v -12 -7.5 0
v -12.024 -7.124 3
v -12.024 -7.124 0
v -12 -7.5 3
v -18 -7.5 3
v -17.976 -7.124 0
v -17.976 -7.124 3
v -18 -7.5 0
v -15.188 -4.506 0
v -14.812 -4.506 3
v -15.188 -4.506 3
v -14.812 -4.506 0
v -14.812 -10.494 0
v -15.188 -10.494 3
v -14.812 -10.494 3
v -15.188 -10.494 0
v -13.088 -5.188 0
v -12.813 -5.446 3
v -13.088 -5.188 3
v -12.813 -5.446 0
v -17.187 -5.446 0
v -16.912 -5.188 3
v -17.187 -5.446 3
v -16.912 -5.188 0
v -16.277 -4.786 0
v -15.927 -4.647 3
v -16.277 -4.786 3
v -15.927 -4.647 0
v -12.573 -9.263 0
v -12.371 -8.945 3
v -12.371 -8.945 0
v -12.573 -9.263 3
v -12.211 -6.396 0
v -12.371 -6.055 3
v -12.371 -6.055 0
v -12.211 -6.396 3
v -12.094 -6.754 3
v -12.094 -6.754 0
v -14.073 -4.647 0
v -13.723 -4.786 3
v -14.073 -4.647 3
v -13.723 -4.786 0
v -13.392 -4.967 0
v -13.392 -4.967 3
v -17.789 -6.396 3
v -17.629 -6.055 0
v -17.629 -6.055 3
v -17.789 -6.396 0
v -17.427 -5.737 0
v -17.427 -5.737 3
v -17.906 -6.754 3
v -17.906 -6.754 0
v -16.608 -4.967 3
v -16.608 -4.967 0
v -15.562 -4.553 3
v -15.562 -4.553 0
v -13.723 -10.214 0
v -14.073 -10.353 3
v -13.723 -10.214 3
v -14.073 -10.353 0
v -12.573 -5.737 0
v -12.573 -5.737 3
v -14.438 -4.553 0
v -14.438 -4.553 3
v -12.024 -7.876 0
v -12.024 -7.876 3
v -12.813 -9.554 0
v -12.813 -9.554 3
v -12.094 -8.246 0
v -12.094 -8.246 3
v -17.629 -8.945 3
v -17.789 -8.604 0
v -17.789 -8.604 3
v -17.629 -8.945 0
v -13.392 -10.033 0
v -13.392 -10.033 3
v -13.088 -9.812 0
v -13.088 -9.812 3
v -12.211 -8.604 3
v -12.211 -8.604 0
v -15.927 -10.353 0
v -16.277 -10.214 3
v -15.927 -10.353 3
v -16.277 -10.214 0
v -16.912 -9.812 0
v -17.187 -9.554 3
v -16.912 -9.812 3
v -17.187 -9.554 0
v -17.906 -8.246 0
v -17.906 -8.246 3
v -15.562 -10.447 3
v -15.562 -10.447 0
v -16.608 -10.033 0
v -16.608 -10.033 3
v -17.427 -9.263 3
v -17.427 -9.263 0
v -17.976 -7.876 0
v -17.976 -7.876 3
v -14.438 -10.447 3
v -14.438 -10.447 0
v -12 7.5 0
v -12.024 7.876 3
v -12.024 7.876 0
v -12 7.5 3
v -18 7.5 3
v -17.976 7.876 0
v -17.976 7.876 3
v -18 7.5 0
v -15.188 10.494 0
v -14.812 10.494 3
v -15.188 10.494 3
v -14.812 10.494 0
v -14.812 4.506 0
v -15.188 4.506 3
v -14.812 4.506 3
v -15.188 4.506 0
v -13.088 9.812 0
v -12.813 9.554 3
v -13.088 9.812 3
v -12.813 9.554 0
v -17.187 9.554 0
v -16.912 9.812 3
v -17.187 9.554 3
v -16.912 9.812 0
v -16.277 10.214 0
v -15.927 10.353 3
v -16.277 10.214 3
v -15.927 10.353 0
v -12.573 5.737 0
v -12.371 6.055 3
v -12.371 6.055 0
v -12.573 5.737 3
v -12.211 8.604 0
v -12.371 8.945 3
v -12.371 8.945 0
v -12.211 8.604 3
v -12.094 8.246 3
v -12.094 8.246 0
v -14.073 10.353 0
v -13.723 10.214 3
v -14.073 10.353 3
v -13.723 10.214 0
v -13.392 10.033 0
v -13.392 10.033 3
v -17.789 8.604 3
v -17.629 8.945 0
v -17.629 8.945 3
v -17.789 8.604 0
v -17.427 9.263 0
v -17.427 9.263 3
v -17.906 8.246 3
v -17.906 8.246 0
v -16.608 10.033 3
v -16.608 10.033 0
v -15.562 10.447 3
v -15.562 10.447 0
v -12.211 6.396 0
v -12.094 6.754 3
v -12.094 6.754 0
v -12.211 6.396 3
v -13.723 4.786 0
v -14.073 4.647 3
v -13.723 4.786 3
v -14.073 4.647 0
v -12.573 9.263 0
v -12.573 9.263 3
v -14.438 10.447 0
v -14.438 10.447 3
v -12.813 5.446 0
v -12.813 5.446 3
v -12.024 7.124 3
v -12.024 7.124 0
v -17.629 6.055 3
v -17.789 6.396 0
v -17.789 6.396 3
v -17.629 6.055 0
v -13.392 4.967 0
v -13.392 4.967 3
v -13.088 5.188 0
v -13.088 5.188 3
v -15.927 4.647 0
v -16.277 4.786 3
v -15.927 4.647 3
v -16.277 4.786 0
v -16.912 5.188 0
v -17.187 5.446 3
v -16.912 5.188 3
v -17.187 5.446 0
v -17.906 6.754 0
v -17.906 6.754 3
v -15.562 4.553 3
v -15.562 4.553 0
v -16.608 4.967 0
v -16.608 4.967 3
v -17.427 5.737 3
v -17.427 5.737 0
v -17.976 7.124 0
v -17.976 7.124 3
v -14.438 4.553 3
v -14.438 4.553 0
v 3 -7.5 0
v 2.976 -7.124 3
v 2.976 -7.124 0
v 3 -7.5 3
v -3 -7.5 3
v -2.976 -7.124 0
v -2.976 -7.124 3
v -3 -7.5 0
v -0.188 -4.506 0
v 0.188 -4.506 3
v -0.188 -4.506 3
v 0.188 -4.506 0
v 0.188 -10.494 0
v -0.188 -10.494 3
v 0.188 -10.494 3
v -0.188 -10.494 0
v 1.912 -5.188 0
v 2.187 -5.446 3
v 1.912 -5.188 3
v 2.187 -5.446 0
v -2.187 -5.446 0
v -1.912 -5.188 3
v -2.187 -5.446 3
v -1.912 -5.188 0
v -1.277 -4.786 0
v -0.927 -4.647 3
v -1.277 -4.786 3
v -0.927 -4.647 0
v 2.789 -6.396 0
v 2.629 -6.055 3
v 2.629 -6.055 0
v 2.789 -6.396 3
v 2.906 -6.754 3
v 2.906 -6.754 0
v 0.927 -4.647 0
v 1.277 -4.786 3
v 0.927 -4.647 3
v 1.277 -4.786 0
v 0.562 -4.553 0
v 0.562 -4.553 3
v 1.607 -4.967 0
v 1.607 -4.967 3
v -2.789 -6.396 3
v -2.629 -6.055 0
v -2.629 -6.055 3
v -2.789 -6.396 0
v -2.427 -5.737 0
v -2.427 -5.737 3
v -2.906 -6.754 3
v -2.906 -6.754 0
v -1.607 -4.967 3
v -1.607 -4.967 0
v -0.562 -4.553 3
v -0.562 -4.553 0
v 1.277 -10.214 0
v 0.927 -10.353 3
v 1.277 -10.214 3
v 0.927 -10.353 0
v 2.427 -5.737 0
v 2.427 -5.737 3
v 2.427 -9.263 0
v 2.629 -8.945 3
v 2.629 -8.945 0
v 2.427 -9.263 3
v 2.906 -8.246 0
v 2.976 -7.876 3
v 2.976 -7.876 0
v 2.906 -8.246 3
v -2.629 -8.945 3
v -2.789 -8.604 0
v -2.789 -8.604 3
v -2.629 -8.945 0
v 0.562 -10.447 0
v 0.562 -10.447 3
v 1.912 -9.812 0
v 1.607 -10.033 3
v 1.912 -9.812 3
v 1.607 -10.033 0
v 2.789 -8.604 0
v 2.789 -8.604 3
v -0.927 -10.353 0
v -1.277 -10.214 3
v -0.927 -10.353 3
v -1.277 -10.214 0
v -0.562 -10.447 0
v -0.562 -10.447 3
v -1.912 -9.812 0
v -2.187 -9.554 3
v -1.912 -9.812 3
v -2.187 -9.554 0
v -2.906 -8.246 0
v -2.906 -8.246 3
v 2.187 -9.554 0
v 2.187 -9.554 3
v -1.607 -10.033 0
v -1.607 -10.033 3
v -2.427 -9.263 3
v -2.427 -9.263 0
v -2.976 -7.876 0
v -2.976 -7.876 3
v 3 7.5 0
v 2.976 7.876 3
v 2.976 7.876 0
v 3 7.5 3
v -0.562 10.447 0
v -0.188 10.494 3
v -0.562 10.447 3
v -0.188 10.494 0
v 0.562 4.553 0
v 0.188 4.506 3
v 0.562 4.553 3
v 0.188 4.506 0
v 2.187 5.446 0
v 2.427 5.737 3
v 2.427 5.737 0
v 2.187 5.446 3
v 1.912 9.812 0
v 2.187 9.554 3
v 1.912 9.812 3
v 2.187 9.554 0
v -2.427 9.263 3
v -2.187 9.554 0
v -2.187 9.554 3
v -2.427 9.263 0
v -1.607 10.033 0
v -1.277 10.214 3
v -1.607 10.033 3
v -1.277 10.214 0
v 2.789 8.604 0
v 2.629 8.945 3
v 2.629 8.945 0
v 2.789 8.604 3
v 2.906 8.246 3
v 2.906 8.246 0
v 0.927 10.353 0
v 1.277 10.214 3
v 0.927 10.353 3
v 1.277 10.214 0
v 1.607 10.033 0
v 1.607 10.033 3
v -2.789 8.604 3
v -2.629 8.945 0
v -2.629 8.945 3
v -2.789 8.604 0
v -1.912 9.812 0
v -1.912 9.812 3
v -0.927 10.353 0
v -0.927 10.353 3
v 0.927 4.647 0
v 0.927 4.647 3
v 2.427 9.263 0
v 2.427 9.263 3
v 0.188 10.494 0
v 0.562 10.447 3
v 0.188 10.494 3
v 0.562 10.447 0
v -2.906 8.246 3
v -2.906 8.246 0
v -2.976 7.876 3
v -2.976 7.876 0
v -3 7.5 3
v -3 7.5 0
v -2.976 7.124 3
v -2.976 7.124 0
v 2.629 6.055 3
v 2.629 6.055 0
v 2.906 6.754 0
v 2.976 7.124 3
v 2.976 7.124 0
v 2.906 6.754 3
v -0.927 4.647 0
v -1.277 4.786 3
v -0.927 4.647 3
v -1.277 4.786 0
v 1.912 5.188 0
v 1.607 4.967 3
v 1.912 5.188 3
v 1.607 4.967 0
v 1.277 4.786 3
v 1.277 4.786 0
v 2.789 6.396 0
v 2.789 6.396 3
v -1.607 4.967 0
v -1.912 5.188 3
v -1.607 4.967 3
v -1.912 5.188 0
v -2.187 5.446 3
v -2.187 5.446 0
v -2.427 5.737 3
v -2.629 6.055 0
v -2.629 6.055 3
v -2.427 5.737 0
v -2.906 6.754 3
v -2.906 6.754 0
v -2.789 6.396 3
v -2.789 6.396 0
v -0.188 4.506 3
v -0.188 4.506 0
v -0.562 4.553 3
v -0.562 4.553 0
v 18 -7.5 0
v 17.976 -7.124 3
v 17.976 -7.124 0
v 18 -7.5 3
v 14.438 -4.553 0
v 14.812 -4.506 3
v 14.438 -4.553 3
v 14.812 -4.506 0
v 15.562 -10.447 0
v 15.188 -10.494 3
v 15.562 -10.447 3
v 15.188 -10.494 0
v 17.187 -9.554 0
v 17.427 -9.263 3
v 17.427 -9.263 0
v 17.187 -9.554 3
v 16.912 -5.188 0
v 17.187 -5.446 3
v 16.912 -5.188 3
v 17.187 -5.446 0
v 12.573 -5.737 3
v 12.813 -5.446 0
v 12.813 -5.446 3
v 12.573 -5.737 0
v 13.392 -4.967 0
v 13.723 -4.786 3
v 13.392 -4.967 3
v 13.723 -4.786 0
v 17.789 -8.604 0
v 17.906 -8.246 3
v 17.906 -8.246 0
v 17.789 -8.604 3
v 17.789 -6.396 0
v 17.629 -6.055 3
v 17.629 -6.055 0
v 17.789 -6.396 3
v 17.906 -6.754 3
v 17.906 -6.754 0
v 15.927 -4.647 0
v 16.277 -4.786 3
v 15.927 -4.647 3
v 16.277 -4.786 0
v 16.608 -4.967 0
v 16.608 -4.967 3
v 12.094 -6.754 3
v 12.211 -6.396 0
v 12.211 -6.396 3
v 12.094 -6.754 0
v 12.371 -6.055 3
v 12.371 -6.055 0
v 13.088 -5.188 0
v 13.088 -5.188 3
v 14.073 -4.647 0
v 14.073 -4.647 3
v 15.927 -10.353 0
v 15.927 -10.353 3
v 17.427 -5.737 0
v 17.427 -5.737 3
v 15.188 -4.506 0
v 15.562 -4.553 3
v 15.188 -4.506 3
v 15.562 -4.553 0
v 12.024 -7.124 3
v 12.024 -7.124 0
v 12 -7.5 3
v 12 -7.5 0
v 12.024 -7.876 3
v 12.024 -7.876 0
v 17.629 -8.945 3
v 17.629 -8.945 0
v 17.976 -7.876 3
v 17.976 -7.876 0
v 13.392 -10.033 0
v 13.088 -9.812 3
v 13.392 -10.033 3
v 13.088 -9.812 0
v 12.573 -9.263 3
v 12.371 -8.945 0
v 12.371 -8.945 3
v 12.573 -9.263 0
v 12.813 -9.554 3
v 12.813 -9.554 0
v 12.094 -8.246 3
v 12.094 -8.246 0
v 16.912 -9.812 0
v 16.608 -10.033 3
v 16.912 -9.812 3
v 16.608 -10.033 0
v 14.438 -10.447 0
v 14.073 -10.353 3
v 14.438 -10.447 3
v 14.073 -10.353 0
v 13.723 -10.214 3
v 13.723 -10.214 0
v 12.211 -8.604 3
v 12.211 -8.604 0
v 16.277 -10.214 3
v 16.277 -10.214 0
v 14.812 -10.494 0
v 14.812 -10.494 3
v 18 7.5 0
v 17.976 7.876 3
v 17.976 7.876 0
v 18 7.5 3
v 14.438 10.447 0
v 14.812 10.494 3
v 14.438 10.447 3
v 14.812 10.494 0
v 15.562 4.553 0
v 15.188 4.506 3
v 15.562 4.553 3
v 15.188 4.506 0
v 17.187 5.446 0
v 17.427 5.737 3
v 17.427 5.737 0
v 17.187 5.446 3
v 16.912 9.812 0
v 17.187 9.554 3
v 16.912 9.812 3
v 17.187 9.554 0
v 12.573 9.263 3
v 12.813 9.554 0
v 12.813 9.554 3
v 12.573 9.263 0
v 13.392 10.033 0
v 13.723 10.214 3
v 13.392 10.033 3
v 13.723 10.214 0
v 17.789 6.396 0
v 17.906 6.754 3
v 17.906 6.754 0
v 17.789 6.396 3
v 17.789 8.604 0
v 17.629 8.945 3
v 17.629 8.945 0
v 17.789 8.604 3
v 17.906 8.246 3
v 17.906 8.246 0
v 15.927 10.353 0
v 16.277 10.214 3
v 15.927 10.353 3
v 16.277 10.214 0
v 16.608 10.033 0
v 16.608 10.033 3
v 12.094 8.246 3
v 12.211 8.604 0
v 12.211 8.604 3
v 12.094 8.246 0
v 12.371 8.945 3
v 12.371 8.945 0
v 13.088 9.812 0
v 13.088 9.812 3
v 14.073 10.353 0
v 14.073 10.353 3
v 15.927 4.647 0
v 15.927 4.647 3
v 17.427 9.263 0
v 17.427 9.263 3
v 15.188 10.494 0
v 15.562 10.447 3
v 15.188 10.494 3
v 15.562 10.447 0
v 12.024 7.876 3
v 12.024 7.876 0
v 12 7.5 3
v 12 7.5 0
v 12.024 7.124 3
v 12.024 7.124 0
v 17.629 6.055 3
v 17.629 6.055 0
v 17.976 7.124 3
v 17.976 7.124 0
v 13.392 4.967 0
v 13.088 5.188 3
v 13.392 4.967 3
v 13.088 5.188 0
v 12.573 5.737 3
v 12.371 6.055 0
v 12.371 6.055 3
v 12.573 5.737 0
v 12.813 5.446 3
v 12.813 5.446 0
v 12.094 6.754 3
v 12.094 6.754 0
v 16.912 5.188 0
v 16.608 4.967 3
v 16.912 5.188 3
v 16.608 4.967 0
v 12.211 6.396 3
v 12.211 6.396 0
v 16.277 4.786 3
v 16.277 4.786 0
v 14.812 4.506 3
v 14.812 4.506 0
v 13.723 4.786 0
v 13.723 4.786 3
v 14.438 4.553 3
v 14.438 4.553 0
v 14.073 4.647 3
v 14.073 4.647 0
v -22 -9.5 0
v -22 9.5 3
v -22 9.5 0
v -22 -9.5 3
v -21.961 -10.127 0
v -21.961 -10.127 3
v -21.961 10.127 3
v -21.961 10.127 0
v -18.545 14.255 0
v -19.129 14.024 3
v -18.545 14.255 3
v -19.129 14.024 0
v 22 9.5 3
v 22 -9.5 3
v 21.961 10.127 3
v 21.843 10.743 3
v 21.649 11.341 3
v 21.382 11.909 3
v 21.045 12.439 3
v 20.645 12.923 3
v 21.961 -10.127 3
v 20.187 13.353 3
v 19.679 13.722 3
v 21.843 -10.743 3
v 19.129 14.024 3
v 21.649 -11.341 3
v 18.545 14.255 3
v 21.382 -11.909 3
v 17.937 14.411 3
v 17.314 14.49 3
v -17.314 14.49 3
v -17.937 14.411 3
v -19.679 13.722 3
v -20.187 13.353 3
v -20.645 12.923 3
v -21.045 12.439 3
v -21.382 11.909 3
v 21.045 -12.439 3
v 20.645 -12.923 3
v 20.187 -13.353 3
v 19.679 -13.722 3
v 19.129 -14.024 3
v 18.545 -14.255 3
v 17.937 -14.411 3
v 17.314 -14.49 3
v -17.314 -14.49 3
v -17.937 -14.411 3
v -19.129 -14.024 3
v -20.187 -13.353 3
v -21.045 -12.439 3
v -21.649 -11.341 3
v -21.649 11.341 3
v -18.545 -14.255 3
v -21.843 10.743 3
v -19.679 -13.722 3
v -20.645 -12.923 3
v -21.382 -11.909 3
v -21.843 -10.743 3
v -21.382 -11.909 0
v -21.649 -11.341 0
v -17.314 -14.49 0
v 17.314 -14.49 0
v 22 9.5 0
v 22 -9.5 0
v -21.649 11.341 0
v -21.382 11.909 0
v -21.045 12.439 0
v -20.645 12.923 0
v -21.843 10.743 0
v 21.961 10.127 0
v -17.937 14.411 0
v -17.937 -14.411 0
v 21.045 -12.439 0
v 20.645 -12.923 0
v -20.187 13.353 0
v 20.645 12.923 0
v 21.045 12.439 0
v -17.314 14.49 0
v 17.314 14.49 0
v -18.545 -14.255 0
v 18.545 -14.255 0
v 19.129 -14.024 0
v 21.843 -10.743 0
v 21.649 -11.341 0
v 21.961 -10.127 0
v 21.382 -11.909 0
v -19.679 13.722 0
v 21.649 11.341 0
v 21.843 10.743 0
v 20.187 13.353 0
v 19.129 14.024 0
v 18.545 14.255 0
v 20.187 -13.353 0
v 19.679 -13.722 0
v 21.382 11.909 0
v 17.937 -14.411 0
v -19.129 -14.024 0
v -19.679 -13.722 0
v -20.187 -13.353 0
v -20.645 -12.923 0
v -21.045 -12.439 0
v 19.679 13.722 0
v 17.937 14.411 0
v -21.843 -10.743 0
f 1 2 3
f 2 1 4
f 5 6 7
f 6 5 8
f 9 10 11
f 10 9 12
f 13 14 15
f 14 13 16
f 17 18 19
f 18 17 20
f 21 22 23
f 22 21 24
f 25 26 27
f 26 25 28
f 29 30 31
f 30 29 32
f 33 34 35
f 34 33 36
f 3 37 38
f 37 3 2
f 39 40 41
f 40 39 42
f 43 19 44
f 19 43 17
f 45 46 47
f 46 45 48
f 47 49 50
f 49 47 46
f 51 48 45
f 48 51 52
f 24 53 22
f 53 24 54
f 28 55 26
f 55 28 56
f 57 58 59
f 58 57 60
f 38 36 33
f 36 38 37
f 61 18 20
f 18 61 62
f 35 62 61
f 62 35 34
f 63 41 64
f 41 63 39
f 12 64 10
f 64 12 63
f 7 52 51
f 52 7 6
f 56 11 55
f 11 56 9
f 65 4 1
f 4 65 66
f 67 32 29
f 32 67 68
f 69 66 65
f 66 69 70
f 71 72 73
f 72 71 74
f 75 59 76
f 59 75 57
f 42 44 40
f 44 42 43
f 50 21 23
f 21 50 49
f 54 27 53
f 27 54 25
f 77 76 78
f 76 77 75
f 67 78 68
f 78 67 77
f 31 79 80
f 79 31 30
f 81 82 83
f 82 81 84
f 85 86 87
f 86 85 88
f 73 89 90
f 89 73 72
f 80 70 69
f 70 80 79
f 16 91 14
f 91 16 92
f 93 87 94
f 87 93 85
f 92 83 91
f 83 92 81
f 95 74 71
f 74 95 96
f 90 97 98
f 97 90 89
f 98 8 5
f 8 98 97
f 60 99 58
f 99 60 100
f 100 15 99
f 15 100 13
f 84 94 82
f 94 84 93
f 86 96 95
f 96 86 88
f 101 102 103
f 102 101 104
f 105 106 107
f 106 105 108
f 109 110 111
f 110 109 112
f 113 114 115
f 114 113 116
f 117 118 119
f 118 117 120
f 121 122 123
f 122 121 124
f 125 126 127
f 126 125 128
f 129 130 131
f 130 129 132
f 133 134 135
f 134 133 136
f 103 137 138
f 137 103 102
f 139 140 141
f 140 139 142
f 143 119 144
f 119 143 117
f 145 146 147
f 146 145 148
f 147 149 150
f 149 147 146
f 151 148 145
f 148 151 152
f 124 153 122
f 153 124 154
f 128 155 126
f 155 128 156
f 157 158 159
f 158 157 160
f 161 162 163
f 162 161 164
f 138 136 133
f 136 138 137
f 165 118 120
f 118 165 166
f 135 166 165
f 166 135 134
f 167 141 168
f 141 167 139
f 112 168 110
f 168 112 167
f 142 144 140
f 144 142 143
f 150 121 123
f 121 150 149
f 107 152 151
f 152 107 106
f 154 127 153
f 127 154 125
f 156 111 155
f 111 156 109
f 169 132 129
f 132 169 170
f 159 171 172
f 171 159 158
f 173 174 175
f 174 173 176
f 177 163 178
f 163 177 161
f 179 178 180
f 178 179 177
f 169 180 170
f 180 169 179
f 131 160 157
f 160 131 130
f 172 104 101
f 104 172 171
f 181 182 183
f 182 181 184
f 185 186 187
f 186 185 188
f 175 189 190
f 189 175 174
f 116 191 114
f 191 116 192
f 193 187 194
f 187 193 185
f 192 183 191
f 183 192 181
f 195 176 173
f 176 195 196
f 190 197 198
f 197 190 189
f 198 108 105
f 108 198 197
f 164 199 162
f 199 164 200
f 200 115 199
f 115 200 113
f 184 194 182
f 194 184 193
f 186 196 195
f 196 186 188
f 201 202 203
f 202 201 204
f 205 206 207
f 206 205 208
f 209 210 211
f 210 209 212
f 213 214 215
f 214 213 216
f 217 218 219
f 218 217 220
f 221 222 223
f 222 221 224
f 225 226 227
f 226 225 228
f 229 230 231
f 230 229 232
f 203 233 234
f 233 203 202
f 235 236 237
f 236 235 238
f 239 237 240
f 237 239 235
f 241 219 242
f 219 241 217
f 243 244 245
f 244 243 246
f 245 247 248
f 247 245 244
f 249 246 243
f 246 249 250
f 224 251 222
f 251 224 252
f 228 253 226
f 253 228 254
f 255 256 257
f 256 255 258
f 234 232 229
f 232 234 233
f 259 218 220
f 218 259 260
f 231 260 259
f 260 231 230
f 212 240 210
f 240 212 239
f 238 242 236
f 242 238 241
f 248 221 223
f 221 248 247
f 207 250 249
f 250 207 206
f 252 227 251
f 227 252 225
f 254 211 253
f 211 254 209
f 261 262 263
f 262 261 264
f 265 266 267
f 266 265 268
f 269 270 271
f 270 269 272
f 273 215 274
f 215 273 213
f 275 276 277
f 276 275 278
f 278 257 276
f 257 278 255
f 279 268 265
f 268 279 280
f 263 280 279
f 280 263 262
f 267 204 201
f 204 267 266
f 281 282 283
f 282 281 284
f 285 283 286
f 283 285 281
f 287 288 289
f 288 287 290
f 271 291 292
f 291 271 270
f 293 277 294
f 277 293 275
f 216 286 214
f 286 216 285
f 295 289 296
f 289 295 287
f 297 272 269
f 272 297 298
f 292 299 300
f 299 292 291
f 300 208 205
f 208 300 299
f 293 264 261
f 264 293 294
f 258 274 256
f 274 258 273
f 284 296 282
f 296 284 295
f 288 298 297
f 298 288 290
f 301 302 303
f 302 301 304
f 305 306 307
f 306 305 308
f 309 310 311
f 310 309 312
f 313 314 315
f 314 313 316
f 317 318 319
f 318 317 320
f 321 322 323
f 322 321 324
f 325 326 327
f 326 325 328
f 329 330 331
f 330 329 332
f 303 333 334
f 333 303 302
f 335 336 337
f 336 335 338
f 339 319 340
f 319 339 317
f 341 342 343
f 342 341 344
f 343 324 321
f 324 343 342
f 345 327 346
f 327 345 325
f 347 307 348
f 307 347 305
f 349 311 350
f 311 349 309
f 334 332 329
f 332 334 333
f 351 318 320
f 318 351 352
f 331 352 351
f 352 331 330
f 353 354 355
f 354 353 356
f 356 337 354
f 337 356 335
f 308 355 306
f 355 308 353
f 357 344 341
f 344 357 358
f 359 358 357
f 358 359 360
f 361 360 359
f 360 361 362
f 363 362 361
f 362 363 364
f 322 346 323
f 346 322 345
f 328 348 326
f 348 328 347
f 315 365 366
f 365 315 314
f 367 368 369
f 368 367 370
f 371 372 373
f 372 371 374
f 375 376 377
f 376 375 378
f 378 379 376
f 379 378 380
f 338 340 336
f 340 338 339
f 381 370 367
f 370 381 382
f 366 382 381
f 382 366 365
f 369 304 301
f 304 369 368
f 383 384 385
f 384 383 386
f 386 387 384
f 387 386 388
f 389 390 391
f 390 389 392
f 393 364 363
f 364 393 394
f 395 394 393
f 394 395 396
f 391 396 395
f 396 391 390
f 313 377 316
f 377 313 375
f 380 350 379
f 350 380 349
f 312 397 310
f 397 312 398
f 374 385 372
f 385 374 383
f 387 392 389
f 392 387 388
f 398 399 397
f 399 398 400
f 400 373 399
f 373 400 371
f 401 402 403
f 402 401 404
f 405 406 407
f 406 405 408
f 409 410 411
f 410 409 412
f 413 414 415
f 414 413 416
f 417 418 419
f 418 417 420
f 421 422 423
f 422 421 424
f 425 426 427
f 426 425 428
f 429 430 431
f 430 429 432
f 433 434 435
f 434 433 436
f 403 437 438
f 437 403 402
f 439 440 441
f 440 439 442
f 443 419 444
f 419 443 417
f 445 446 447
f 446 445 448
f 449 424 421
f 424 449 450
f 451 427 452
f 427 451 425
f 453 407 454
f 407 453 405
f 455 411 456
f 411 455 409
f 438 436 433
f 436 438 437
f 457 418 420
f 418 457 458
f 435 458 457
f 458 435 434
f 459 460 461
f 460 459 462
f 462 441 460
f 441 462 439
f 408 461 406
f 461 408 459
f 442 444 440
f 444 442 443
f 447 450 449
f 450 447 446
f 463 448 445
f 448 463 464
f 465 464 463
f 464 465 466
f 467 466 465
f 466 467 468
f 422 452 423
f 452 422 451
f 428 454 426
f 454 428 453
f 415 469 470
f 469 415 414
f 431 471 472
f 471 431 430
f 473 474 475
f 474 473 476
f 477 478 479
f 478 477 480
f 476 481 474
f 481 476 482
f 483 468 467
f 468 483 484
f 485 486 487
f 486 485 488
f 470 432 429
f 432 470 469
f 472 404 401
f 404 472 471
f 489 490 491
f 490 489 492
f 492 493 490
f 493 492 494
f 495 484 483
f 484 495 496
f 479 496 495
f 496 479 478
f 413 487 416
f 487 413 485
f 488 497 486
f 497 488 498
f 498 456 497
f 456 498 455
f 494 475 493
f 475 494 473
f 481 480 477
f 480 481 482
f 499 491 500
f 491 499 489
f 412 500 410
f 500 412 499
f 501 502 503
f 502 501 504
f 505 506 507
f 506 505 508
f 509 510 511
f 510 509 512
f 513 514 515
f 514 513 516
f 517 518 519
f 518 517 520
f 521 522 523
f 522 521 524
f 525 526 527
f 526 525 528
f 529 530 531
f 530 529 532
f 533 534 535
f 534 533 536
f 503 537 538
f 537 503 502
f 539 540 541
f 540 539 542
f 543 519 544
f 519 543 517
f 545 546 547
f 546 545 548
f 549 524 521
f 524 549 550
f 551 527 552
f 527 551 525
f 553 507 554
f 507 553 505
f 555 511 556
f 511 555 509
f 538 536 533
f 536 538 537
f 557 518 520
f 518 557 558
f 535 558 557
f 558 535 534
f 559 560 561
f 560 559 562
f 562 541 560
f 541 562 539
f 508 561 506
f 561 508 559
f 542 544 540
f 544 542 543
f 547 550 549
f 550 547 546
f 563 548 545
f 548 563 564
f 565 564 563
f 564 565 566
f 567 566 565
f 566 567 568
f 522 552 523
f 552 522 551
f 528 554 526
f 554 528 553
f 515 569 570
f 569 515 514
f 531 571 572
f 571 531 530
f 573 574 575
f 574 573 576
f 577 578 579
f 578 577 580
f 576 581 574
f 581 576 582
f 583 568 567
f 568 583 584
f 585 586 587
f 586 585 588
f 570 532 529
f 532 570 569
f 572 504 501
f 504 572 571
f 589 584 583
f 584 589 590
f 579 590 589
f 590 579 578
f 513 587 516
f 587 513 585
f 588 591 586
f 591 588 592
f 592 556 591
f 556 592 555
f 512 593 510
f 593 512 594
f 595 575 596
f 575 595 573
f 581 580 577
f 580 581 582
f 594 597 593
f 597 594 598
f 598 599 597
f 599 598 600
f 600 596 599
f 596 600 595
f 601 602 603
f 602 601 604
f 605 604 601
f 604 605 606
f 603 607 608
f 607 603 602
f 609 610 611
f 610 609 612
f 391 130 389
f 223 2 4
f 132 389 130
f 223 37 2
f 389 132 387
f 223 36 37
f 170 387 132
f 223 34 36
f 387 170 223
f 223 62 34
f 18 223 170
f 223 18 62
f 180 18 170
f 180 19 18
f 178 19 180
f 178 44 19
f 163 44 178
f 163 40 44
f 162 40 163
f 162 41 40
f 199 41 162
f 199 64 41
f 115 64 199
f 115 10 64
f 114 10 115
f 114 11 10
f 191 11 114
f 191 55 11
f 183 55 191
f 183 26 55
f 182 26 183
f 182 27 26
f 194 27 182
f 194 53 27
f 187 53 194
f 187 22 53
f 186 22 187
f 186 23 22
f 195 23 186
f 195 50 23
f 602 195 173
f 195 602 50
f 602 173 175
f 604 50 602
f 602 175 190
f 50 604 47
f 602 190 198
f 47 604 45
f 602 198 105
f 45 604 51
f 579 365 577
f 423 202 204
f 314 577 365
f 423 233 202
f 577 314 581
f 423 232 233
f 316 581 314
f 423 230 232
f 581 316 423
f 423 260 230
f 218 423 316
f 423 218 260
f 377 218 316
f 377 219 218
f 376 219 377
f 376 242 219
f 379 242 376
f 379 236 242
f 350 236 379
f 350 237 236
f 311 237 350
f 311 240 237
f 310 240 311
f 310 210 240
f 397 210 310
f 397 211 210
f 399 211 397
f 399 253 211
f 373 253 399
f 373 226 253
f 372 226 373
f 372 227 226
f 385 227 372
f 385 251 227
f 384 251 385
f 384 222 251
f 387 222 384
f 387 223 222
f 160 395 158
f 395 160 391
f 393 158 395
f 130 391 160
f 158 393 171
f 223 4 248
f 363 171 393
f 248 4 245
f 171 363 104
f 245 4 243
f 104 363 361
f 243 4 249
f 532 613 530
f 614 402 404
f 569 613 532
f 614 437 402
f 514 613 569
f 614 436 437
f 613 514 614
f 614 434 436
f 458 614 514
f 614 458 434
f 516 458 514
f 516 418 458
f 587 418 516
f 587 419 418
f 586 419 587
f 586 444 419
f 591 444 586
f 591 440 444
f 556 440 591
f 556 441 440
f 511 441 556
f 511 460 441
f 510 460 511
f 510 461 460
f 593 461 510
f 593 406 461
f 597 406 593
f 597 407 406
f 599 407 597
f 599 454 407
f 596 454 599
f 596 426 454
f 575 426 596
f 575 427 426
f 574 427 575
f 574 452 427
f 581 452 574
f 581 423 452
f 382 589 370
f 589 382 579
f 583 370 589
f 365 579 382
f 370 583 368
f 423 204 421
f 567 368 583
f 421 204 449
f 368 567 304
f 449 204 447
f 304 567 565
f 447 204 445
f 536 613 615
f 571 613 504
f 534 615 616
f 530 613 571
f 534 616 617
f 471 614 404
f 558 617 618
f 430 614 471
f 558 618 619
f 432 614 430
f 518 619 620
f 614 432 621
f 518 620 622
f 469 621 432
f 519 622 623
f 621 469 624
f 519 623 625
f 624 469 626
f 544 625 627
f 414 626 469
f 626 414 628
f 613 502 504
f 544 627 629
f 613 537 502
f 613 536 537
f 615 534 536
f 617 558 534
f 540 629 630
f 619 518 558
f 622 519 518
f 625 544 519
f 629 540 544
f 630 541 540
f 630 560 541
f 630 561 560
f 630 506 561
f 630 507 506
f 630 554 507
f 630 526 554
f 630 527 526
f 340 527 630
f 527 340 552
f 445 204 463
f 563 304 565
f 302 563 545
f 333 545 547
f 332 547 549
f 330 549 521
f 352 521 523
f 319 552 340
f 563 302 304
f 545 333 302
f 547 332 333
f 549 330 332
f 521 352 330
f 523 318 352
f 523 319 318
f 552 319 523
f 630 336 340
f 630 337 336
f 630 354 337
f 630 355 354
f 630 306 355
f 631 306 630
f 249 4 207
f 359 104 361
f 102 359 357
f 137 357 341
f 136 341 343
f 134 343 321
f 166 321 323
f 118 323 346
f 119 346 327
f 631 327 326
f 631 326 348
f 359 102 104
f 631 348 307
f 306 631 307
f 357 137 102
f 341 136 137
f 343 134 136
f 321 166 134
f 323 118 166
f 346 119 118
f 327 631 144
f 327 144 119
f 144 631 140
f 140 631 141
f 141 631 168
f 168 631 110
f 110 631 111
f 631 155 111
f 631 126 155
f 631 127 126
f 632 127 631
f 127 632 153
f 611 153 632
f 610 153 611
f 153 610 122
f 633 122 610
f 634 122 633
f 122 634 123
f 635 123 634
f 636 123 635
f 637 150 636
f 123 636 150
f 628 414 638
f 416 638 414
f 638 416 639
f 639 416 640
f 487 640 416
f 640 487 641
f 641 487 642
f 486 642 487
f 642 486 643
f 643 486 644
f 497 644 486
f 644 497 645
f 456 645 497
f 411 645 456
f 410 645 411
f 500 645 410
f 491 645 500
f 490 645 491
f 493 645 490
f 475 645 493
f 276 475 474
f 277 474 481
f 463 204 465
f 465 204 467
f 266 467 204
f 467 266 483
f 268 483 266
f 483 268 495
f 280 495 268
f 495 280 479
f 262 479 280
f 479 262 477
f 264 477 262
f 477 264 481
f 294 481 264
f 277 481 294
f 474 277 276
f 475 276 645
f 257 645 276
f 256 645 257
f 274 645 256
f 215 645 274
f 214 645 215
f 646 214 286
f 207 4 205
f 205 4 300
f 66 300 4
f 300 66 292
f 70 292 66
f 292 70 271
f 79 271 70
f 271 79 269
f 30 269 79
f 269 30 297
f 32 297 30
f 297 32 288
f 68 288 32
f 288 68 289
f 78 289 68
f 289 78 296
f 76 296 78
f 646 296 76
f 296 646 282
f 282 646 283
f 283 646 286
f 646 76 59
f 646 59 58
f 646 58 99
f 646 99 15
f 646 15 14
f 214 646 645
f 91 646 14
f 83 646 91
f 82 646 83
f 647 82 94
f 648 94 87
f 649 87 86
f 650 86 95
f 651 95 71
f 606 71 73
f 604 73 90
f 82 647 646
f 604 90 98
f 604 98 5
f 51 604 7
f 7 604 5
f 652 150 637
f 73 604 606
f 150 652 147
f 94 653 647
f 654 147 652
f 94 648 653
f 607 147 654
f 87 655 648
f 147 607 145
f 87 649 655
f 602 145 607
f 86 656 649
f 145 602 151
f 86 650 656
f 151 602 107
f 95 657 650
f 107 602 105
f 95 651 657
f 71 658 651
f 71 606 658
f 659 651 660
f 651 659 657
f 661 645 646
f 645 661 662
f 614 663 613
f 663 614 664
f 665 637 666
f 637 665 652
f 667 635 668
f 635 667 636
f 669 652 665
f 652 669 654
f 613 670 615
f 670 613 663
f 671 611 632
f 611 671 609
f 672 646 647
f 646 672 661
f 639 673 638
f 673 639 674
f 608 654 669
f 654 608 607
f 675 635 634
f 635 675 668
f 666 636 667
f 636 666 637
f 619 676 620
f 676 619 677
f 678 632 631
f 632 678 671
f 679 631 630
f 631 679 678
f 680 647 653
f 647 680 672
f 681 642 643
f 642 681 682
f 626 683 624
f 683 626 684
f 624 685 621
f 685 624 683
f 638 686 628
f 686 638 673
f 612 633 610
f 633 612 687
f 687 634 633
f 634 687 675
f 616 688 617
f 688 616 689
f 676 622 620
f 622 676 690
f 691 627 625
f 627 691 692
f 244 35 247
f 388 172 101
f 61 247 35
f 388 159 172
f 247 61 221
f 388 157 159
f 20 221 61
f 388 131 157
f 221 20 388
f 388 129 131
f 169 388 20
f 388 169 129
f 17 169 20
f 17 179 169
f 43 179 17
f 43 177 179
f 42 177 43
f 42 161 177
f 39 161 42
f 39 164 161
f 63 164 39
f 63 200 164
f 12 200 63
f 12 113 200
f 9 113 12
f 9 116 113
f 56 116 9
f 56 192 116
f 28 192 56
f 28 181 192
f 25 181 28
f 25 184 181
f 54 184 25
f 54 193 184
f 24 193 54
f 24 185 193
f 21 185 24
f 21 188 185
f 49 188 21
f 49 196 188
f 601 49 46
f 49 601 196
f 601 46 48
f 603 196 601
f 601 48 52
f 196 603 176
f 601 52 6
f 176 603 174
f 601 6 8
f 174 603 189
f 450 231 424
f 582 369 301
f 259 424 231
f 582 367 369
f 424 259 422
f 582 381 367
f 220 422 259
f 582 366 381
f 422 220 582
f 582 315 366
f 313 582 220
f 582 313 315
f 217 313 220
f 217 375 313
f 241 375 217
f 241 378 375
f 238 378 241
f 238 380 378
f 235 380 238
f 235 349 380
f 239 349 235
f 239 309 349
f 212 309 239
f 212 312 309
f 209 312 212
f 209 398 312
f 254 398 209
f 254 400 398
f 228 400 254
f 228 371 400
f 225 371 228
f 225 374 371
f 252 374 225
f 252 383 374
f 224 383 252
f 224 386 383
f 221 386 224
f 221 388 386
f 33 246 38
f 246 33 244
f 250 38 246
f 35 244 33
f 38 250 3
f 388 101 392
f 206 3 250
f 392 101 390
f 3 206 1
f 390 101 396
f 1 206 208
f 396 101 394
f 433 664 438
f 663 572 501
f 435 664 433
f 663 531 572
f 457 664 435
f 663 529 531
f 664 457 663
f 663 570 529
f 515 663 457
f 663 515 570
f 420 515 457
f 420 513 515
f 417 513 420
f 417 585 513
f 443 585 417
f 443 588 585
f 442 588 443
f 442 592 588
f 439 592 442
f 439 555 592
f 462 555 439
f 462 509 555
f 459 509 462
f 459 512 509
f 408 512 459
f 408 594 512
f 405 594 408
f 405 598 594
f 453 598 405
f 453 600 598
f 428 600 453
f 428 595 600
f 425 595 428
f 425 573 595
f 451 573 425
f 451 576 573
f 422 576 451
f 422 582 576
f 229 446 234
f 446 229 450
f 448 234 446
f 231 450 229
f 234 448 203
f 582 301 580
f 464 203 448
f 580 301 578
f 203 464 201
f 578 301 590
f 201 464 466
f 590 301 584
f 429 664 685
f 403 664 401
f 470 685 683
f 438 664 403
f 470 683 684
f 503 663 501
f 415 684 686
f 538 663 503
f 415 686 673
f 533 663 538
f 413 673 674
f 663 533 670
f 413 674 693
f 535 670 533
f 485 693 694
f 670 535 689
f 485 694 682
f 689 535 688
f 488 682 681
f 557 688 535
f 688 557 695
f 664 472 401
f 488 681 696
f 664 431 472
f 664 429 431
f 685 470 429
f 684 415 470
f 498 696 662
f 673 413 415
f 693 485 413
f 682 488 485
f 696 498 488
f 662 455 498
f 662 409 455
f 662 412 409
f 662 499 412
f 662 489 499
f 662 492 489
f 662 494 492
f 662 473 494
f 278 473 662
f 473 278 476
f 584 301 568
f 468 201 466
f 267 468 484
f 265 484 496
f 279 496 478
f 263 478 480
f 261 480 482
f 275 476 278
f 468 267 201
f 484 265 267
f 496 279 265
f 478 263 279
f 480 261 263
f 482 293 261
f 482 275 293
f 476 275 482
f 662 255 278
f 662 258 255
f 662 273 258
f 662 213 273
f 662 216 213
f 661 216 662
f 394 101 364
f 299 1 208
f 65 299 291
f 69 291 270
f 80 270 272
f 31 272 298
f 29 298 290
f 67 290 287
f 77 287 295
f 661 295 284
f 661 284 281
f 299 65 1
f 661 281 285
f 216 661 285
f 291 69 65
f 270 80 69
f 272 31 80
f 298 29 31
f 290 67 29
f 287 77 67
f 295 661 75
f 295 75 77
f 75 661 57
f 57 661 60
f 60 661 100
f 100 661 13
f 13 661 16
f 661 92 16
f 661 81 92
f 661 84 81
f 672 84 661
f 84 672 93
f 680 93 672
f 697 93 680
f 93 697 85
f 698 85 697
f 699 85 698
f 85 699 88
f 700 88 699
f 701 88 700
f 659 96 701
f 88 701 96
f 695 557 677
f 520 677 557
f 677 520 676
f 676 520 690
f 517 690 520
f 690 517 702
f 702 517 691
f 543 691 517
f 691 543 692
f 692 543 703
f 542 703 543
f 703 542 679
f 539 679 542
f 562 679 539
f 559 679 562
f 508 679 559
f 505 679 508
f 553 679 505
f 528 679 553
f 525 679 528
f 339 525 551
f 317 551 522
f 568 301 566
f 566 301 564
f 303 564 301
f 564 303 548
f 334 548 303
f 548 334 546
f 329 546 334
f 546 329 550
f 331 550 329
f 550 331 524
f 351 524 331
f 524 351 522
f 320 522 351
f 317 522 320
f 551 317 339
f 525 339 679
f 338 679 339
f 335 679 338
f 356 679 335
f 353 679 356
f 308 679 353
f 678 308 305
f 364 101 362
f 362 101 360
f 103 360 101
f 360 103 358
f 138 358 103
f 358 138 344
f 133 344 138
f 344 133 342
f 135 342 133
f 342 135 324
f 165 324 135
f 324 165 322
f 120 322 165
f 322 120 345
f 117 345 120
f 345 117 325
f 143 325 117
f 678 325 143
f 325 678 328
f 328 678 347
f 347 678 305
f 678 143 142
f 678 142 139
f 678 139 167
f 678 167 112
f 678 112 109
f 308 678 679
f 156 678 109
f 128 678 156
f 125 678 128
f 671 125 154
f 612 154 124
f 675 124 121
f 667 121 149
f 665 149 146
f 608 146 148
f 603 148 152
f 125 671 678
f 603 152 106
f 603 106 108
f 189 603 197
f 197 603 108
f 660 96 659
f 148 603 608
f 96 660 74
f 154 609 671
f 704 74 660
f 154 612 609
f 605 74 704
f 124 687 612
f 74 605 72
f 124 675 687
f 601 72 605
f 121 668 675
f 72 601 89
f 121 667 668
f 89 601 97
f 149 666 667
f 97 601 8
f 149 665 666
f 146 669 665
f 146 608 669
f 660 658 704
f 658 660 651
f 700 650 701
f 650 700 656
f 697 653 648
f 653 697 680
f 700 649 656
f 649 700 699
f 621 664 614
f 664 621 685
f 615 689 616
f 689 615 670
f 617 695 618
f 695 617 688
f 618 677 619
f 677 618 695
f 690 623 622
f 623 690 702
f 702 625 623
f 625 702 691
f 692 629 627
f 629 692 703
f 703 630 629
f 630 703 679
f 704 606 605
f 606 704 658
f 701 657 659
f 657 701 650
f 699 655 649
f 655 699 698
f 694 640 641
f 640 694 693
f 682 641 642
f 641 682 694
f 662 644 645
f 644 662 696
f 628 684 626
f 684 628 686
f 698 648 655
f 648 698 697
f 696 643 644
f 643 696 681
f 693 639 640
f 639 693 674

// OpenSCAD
$fn = 50;


difference() {
	union() {
		hull() {
			translate(v = [-17.0000000000, 9.5000000000, 0]) {
				cylinder(h = 3, r = 5);
			}
			translate(v = [17.0000000000, 9.5000000000, 0]) {
				cylinder(h = 3, r = 5);
			}
			translate(v = [-17.0000000000, -9.5000000000, 0]) {
				cylinder(h = 3, r = 5);
			}
			translate(v = [17.0000000000, -9.5000000000, 0]) {
				cylinder(h = 3, r = 5);
			}
		}
	}
	union() {
		translate(v = [-15.0000000000, -7.5000000000, 0]) {
			translate(v = [0, 0, -100]) {
				cylinder(h = 200, r = 3.0000000000);
			}
		}
		translate(v = [-15.0000000000, 7.5000000000, 0]) {
			translate(v = [0, 0, -100]) {
				cylinder(h = 200, r = 3.0000000000);
			}
		}
		translate(v = [0.0000000000, -7.5000000000, 0]) {
			translate(v = [0, 0, -100]) {
				cylinder(h = 200, r = 3.0000000000);
			}
		}
		translate(v = [0.0000000000, 7.5000000000, 0]) {
			translate(v = [0, 0, -100]) {
				cylinder(h = 200, r = 3.0000000000);
			}
		}
		translate(v = [15.0000000000, -7.5000000000, 0]) {
			translate(v = [0, 0, -100]) {
				cylinder(h = 200, r = 3.0000000000);
			}
		}
		translate(v = [15.0000000000, 7.5000000000, 0]) {
			translate(v = [0, 0, -100]) {
				cylinder(h = 200, r = 3.0000000000);
			}
		}
	}
}
